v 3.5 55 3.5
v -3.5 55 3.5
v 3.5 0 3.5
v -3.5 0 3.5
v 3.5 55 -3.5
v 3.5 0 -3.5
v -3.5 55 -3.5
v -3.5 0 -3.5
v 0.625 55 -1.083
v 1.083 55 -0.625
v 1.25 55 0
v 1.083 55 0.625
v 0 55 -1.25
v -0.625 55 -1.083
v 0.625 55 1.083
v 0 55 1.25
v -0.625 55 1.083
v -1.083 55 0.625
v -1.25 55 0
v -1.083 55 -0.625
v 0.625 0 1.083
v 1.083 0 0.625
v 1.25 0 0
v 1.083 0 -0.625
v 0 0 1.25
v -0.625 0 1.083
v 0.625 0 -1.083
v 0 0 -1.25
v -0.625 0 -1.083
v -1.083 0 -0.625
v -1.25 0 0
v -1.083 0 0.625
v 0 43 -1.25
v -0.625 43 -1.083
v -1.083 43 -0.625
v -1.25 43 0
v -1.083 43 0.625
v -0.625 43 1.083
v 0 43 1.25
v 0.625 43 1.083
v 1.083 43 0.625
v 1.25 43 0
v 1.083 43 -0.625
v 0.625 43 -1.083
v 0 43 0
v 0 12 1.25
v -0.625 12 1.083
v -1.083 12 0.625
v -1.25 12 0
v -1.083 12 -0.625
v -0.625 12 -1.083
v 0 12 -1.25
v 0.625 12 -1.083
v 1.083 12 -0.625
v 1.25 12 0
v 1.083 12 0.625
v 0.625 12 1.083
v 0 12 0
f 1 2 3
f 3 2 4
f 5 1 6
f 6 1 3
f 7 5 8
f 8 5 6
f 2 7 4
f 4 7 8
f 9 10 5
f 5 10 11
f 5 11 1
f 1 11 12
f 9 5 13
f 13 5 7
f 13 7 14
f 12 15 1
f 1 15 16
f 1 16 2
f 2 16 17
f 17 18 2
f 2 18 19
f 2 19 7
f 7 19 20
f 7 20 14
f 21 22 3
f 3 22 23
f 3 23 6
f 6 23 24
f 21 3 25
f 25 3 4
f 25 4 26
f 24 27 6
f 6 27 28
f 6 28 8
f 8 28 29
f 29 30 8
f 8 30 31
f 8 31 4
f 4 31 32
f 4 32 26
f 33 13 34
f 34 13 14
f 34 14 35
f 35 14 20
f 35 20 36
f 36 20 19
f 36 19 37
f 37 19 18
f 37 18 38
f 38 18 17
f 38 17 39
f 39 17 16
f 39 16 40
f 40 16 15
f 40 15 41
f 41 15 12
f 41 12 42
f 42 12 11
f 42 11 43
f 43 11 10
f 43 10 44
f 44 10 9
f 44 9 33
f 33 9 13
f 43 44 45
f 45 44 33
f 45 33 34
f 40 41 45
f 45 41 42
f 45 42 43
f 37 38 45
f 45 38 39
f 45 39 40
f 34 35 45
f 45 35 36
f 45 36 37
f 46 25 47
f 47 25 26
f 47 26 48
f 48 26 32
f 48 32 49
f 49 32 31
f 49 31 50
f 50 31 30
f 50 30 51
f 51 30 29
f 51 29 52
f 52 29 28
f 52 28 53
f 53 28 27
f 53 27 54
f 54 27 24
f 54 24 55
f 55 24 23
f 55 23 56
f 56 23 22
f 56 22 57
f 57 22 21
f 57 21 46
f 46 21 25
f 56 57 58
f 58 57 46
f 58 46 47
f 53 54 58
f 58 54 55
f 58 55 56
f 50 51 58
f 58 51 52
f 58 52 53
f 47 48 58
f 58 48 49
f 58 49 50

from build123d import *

# Parameters (mm, degrees)
BOSS_EXTRUDE1_DEPTH = 55
SKETCH2_R           = 1.25
CUT_EXTRUDE1_DEPTH  = 12
CUT_EXTRUDE2_START  = -12
SKETCH3_R           = 1.25
CUT_EXTRUDE2_DEPTH  = 12


with BuildPart() as part:
    # Sketch1 → Boss-Extrude1 (new body)
    with BuildSketch(Plane(origin=(0, 0, 0), x_dir=(1, 0, 0), z_dir=(0, 1, 0))):
        Polygon((0, 3.5), (-3.5, 3.5), (-3.5, -3.5), (3.5, -3.5), (3.5, 3.5), align=None)
    extrude(amount=BOSS_EXTRUDE1_DEPTH)

    # Sketch2 → Cut-Extrude1 (cut)
    with BuildSketch(Plane(origin=(0, 55, 0), x_dir=(1, 0, 0), z_dir=(0, 1, 0))):
        with Locations(Location((0, 0, 0), (0, 0, 270))):
            Circle(SKETCH2_R)
    extrude(amount=-CUT_EXTRUDE1_DEPTH, mode=Mode.SUBTRACT)

    # Sketch3 → Cut-Extrude2 (cut)
    with BuildSketch(Plane.XZ.offset(CUT_EXTRUDE2_START)):
        with Locations(Location((0, 0, 0), (0, 0, 90))):
            Circle(SKETCH3_R)
    extrude(amount=CUT_EXTRUDE2_DEPTH, mode=Mode.SUBTRACT)


solid = part.part
